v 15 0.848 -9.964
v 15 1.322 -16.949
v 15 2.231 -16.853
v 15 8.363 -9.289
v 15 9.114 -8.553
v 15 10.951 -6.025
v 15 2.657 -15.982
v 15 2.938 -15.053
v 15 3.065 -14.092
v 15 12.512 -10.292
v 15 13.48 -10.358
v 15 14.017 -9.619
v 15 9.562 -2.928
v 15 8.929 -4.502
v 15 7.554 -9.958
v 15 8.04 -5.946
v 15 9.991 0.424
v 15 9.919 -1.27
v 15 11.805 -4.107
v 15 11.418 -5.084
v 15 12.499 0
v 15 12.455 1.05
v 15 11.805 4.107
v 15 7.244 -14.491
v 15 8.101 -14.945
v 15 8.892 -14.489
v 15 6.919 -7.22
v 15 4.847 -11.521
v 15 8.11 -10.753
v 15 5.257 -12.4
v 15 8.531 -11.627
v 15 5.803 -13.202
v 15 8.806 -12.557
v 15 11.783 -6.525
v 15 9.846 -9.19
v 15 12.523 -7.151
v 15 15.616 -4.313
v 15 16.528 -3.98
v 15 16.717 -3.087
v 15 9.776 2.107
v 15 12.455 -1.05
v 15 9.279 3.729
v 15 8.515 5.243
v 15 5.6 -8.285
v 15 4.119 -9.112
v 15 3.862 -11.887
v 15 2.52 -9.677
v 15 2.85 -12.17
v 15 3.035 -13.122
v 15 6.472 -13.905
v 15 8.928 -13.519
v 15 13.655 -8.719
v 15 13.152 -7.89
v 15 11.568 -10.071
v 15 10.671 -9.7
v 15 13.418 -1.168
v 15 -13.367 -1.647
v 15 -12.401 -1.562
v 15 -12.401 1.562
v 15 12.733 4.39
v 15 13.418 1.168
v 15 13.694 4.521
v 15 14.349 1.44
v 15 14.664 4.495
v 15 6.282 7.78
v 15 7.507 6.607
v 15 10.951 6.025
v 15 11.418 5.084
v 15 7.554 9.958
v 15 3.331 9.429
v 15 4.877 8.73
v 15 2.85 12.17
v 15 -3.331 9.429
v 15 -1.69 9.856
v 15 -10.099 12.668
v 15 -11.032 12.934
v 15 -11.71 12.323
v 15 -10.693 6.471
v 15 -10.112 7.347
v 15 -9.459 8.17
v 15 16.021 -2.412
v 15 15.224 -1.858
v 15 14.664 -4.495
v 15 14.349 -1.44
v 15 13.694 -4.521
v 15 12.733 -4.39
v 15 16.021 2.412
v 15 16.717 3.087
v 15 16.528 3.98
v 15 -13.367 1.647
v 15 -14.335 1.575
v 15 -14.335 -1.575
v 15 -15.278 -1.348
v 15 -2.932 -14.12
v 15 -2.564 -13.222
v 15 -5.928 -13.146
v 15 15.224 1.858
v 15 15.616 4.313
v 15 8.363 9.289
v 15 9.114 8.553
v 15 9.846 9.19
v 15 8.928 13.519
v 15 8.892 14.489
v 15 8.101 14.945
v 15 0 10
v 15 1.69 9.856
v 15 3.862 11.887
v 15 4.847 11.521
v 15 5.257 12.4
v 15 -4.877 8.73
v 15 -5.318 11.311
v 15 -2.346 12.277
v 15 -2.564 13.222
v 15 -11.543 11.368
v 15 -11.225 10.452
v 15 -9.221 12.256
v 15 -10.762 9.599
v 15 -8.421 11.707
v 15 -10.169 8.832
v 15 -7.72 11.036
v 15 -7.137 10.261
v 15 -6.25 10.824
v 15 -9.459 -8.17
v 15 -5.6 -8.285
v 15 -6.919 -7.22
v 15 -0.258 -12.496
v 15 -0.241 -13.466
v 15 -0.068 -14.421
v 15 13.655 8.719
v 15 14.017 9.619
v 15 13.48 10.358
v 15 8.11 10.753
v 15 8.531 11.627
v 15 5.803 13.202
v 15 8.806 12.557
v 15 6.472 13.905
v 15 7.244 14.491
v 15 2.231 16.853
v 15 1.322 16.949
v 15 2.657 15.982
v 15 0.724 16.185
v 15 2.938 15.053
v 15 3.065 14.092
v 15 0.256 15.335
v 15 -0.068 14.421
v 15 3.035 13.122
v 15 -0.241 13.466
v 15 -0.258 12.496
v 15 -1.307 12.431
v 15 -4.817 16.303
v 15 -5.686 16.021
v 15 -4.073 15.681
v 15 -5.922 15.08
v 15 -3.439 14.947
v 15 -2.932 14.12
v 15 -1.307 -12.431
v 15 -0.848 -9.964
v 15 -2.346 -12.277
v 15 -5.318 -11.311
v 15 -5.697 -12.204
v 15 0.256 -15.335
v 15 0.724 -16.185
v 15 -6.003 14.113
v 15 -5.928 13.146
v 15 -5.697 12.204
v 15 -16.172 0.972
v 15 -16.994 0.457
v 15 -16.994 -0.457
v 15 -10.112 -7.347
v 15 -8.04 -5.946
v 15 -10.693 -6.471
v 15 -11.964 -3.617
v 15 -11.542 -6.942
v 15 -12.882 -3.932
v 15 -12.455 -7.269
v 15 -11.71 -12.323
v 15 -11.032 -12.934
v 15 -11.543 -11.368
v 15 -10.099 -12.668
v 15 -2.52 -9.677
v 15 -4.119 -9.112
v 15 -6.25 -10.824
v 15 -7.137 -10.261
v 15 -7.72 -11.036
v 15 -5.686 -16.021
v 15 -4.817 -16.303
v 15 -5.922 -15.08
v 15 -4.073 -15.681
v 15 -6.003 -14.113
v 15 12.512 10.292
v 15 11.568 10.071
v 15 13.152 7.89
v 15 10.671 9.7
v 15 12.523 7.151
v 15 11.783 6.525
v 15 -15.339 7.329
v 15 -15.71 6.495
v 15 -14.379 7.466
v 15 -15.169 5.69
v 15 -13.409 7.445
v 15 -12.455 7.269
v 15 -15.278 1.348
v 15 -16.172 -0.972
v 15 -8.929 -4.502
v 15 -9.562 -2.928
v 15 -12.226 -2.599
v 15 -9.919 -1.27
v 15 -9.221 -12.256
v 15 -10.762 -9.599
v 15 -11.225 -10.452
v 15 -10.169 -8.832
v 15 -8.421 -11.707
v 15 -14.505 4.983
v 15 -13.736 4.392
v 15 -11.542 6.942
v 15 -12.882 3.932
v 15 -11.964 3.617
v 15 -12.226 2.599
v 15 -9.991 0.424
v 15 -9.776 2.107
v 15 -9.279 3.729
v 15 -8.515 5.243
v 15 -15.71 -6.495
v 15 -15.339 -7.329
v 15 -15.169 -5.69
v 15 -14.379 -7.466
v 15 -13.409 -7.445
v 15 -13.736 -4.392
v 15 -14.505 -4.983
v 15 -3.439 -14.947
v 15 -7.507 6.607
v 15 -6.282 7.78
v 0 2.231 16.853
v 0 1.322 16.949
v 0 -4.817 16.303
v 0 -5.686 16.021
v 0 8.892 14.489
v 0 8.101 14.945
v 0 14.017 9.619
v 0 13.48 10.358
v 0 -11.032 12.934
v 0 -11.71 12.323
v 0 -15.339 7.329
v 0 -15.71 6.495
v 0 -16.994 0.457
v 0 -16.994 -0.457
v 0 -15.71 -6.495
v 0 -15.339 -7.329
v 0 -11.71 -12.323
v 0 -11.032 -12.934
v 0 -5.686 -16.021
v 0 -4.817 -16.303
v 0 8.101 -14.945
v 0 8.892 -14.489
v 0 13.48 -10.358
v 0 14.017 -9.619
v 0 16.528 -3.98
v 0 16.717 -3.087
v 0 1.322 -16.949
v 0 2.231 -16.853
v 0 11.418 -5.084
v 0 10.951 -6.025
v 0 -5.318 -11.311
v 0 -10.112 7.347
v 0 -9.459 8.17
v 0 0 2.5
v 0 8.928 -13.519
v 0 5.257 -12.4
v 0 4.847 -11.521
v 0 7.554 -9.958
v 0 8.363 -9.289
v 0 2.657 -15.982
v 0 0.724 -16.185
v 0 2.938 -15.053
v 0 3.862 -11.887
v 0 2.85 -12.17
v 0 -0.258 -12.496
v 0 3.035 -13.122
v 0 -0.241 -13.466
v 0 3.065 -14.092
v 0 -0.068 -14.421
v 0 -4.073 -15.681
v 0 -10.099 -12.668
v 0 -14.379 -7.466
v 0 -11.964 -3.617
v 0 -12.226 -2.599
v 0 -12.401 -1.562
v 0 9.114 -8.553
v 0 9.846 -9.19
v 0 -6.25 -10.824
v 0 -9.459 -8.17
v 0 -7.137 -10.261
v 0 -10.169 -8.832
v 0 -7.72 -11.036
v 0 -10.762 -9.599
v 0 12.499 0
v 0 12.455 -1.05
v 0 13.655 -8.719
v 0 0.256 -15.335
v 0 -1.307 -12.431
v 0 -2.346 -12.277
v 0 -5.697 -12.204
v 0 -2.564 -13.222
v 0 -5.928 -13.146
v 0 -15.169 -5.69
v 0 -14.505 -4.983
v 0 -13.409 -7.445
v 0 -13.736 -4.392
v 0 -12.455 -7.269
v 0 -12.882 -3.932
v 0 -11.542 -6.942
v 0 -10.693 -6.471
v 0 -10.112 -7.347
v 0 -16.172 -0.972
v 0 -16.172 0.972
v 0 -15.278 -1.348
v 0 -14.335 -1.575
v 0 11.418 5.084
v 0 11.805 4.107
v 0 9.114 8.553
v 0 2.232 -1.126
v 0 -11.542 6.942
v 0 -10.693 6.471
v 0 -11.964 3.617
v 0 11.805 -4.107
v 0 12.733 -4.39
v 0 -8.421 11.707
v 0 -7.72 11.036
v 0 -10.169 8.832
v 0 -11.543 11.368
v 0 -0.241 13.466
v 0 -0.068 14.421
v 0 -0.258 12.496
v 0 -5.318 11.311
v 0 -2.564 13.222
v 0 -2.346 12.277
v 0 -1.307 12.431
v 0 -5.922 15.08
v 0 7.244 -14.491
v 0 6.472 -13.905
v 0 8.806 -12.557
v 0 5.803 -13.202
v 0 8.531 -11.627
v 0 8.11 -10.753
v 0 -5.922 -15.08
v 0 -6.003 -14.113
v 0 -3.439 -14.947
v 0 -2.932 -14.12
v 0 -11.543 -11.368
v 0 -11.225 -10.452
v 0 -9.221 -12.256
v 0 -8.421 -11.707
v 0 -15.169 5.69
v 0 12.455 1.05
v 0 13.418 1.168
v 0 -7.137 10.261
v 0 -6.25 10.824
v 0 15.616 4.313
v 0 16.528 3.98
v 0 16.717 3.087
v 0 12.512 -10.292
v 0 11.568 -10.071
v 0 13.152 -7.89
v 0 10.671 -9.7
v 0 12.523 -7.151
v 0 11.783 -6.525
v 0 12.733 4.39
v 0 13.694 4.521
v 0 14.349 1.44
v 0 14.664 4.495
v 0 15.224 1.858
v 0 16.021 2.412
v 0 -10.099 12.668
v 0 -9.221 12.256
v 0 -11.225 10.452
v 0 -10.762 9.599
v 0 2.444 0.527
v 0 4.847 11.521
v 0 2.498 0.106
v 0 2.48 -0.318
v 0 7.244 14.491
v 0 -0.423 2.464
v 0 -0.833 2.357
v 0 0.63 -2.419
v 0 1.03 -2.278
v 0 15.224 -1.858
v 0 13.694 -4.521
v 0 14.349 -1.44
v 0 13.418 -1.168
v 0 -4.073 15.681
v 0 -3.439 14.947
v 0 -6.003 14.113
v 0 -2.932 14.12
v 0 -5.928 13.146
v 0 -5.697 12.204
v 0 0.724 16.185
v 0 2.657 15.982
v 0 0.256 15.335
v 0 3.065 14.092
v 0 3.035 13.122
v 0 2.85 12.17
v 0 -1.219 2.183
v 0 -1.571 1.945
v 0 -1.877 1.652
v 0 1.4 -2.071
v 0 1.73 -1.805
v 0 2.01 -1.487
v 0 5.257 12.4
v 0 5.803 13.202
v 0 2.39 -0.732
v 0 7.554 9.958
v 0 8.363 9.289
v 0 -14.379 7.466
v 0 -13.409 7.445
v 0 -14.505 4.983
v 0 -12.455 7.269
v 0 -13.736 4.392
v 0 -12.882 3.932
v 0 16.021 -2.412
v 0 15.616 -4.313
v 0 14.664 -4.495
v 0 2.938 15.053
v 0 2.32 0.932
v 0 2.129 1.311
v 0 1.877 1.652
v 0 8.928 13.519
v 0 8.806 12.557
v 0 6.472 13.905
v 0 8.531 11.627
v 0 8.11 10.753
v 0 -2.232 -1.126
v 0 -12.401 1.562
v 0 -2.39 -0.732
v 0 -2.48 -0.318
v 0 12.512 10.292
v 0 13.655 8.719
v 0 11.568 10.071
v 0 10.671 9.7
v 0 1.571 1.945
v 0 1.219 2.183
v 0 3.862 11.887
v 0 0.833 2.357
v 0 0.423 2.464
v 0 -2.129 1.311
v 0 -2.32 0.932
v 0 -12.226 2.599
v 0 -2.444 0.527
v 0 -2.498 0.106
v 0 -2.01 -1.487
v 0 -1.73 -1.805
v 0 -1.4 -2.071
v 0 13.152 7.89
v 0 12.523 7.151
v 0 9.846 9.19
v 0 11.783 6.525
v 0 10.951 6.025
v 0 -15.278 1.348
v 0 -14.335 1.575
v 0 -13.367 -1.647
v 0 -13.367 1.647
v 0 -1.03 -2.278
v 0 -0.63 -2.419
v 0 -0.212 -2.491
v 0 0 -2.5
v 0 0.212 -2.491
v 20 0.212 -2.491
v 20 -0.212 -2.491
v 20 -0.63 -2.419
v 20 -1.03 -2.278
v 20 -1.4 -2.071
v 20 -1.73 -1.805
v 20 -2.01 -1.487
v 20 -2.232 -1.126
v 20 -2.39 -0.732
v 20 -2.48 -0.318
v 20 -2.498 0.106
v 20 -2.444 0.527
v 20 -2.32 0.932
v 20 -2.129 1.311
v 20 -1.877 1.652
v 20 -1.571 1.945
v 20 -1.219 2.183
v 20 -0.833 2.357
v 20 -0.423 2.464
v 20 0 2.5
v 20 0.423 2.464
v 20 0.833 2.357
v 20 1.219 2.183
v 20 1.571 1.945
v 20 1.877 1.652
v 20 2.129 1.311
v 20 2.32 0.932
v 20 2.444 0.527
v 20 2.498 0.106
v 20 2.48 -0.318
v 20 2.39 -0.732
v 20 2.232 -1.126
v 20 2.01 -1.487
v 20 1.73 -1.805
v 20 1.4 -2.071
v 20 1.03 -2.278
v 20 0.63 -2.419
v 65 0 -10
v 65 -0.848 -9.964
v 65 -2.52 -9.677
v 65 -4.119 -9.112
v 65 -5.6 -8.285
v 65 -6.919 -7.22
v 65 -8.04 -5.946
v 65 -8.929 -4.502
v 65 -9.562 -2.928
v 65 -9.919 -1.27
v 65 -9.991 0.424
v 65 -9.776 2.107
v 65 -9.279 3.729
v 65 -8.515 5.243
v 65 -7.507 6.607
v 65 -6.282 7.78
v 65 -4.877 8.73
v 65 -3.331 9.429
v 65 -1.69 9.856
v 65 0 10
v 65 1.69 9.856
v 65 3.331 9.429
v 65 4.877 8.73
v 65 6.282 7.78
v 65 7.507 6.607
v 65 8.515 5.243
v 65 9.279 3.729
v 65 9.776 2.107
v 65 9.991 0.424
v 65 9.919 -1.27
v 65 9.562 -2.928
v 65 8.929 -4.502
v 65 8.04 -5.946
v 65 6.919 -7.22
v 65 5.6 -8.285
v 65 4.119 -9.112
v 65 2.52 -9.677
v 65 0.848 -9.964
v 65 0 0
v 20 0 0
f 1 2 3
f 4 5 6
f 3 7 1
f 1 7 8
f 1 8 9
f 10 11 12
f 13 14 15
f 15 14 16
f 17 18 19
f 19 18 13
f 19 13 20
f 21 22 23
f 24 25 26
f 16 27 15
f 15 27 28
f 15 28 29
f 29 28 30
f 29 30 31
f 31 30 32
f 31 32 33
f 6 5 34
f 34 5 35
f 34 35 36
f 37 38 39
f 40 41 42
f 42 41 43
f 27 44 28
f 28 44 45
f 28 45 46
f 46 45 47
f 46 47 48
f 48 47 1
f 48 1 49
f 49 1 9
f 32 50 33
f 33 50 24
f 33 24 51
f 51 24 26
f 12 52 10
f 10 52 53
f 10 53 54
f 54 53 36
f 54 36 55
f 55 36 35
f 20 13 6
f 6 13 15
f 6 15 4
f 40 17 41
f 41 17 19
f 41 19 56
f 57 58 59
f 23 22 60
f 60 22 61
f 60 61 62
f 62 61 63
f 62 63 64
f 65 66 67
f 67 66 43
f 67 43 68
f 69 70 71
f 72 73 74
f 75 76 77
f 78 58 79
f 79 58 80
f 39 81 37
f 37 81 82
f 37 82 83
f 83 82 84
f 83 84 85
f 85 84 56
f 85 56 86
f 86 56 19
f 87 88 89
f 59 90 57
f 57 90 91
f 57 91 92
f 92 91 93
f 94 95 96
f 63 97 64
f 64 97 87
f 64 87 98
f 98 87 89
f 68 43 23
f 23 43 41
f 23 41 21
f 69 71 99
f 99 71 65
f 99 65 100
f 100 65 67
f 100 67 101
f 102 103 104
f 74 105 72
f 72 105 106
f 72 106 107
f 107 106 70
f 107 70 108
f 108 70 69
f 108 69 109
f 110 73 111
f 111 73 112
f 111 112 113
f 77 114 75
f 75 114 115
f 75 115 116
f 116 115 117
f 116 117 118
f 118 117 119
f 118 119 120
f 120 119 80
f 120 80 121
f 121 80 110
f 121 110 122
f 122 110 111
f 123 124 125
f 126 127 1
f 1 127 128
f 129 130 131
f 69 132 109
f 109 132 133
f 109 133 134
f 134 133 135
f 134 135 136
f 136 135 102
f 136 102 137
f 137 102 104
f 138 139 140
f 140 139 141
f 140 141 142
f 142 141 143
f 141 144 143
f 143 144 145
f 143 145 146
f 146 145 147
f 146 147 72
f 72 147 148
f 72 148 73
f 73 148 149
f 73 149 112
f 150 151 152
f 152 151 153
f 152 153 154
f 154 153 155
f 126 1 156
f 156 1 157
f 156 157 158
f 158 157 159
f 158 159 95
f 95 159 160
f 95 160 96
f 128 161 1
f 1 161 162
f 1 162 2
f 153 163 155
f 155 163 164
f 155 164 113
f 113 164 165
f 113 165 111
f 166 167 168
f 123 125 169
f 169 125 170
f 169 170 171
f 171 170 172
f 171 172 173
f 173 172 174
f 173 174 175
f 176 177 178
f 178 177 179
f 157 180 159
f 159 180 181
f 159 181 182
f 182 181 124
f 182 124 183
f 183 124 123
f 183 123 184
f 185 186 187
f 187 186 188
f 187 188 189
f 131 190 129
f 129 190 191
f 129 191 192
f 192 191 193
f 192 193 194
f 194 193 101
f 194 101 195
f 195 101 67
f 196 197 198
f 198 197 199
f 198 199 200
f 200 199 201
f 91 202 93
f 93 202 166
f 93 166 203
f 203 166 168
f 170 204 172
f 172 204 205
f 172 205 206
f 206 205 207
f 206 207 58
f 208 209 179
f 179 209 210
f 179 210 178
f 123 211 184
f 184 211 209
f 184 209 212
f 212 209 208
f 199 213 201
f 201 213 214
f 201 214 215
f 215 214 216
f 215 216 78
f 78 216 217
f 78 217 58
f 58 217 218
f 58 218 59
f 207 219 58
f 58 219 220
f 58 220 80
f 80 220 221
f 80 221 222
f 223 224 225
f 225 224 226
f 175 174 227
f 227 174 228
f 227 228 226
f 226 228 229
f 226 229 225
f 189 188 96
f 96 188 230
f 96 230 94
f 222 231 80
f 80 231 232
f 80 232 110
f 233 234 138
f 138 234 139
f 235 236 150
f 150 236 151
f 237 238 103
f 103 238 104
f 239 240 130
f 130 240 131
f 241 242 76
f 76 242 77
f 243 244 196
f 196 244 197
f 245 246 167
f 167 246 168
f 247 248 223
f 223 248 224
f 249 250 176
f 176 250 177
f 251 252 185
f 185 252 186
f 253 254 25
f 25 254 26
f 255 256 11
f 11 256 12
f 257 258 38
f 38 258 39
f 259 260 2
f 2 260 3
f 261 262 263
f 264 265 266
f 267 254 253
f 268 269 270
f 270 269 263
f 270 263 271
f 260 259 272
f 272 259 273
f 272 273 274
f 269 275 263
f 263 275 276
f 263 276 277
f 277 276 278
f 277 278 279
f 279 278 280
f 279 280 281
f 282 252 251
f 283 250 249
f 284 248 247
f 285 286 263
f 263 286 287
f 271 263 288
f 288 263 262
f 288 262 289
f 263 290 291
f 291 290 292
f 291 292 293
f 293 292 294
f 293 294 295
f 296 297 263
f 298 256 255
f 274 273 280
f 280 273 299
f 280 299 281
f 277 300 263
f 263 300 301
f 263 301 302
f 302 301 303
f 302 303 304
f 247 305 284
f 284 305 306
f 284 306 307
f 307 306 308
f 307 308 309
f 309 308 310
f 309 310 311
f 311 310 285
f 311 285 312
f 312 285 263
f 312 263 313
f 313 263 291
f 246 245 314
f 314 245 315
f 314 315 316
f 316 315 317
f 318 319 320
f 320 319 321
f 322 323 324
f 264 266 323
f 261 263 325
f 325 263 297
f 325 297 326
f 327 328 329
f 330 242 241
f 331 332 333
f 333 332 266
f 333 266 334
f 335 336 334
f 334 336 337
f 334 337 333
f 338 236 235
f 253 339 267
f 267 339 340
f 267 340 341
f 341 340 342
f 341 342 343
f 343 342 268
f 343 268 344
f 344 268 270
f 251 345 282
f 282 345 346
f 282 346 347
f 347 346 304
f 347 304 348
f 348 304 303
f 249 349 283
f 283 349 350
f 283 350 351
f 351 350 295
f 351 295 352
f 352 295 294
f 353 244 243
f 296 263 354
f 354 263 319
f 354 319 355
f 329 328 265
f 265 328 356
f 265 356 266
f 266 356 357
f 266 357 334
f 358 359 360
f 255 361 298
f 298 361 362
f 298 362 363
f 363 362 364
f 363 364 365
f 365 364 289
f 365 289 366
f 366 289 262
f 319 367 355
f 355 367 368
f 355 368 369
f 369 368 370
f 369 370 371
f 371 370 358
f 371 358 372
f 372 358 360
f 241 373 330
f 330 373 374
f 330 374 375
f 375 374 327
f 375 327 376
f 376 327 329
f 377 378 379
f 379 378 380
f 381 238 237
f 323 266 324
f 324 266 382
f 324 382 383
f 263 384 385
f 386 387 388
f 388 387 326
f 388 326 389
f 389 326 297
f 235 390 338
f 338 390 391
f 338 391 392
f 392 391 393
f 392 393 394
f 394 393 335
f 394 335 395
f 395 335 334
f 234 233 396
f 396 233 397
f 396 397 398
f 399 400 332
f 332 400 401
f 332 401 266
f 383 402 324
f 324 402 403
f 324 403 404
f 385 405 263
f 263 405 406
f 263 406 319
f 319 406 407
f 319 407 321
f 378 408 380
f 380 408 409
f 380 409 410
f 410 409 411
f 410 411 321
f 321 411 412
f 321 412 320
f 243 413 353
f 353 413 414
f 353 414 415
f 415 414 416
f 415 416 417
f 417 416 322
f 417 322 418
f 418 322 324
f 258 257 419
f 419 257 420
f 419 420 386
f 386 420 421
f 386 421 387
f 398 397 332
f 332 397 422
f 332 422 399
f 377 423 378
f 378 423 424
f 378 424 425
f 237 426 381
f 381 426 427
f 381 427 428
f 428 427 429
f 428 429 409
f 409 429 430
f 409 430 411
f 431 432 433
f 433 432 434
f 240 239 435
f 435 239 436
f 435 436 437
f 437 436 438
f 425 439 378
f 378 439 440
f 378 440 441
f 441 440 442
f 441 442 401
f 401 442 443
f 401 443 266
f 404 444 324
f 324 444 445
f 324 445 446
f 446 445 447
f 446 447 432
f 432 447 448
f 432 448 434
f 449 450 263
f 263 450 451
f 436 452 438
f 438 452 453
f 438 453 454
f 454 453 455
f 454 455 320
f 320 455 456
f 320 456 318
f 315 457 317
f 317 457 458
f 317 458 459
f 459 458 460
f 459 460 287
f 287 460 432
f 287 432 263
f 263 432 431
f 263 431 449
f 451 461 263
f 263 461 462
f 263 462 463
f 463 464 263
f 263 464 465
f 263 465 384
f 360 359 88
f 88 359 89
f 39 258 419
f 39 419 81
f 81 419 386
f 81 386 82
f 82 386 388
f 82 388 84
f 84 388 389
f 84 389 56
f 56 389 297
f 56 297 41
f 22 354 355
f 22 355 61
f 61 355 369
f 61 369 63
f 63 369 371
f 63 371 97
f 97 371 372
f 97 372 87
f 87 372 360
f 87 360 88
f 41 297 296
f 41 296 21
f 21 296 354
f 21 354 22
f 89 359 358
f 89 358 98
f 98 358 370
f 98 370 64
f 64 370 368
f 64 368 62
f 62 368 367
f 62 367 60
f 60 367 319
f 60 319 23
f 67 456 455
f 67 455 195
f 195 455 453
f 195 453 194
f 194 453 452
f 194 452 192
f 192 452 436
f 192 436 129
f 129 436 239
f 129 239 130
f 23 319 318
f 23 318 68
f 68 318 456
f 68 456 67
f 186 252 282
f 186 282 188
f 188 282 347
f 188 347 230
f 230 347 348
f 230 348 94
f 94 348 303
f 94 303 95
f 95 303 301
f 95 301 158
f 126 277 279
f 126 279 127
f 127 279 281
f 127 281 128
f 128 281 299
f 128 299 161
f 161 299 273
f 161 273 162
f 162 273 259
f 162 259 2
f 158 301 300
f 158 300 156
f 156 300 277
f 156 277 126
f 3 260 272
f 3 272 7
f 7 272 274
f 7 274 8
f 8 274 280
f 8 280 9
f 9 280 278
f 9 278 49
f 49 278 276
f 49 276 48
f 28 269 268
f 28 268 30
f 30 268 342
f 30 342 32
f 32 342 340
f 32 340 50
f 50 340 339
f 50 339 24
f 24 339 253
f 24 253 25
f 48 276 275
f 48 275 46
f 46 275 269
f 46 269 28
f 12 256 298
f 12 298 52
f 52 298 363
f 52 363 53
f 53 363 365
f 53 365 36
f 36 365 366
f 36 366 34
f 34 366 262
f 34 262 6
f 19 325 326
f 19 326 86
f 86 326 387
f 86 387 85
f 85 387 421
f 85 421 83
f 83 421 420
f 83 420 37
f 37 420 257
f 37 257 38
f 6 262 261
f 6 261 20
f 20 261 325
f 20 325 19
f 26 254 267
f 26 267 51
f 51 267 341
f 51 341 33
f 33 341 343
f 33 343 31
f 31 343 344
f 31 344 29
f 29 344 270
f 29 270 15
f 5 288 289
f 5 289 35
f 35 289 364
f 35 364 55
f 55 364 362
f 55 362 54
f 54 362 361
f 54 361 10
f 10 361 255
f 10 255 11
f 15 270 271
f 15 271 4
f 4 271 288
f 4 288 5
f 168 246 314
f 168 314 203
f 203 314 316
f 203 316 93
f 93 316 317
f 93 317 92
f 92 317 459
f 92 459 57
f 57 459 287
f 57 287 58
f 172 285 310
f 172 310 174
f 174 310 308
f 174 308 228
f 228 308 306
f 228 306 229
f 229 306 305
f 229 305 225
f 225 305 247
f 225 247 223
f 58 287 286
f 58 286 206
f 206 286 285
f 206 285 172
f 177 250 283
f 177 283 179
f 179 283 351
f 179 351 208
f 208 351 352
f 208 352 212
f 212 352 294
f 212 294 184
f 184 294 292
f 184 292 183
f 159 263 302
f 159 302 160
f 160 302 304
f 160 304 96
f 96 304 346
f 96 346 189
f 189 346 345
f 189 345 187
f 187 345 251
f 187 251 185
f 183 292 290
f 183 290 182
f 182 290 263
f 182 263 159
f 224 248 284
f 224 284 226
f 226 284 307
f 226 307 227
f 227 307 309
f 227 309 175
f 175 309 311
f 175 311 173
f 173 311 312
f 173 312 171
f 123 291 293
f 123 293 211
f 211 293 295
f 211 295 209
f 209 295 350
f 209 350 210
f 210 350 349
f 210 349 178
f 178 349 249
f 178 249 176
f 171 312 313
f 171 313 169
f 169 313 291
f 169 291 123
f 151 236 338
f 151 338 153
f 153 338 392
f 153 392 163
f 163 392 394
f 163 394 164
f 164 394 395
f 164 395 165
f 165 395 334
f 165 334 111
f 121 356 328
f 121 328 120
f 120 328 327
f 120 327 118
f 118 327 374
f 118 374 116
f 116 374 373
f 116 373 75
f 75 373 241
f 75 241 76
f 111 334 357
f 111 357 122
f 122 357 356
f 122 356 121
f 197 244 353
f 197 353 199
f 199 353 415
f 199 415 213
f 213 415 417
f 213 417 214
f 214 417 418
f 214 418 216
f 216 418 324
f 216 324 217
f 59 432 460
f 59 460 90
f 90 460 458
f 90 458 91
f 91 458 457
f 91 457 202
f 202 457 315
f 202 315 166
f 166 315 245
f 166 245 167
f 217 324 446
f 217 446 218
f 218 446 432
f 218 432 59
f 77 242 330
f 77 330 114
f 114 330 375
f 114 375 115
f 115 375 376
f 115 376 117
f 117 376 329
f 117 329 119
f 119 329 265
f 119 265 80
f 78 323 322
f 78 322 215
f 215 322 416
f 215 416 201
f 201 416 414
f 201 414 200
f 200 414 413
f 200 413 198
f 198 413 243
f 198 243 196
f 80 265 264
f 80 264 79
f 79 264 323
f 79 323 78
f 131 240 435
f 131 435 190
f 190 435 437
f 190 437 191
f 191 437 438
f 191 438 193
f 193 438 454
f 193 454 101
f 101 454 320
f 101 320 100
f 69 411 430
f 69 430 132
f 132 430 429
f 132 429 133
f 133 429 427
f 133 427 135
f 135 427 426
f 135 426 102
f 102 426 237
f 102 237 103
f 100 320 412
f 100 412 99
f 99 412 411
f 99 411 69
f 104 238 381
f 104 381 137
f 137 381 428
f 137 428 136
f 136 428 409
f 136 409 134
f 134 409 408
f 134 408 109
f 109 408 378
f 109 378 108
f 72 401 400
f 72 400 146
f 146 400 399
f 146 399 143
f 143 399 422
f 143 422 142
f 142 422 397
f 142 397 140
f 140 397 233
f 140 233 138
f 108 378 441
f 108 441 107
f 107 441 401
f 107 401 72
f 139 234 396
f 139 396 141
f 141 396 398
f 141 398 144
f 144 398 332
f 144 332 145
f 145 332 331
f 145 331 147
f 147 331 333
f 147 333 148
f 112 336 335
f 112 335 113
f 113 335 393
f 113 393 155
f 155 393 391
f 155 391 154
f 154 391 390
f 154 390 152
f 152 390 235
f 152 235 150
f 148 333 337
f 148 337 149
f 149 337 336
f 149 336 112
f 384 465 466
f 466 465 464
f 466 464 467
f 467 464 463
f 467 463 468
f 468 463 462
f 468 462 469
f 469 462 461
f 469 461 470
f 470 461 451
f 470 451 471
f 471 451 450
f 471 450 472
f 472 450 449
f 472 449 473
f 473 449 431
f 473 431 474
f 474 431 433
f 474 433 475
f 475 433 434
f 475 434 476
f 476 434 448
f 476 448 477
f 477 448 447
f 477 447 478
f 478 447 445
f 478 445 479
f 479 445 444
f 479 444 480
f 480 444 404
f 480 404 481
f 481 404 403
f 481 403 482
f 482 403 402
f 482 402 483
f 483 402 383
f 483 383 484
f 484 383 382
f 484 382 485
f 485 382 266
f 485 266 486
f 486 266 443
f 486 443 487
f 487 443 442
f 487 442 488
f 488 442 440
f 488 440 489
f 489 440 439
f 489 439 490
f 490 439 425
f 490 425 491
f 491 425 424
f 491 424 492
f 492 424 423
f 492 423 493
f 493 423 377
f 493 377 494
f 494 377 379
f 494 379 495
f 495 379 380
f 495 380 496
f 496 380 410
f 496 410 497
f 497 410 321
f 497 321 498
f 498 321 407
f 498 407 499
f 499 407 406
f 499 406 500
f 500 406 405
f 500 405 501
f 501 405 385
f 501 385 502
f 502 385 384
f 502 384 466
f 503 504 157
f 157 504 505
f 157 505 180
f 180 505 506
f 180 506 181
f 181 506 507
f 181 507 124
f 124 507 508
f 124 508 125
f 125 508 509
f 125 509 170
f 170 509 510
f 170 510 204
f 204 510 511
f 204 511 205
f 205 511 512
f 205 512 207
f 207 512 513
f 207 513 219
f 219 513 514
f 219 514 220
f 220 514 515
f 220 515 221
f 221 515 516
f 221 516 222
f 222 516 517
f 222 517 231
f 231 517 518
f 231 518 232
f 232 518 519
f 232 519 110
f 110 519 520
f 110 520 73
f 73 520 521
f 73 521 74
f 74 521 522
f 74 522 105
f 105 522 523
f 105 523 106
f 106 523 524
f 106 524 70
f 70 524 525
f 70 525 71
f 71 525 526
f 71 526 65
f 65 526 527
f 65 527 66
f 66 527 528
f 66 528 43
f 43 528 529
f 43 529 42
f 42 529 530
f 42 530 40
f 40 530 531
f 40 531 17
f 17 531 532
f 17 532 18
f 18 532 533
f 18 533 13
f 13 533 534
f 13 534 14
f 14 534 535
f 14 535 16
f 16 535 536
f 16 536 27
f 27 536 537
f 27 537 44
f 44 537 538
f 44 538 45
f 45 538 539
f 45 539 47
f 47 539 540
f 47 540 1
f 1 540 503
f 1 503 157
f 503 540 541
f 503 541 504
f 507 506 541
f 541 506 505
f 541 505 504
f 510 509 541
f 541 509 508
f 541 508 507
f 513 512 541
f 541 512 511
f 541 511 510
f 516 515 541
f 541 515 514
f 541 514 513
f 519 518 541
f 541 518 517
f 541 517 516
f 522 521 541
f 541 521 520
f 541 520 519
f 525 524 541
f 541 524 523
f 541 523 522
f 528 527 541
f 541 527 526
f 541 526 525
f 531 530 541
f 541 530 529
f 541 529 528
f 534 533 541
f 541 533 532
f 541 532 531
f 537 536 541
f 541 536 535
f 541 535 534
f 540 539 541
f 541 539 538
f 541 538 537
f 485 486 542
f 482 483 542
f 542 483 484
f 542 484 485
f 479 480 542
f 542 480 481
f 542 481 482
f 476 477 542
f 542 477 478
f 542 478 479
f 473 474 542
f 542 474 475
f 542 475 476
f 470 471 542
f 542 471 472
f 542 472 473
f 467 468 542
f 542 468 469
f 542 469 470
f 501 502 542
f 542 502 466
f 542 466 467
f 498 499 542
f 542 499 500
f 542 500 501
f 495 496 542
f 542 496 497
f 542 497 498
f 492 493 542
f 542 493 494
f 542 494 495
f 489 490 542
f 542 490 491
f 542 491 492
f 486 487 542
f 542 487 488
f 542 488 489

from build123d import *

# Parameters (mm, degrees)
BASPROSKE_W         = 15
BASPROSKE_H         = 17
TOOTHCUT_DEPTH      = 29.337254631
TEETHCUTS_COUNT     = 15
TEETHCUTS_ANGLE     = 336
BORSKE_R            = 2.5
BORE_DEPTH          = 50.0000508
SKETCH1_R           = 10
BOSS_EXTRUDE1_DEPTH = 50
CUT_EXTRUDE3_START  = -20
SKETCH2_R           = 2.5
CUT_EXTRUDE3_DEPTH  = 20


with BuildPart() as part:
    # BasProSke → Base-Revolve (revolve)
    with BuildSketch(Plane(origin=(0, 0, 0), x_dir=(1, 0, 0), z_dir=(0, 1, 0)), mode=Mode.PRIVATE) as base_revolve_sk:
        with Locations((7.5, 8.5)):
            Rectangle(BASPROSKE_W, BASPROSKE_H)
    revolve(base_revolve_sk.sketch.rotate(Axis((-10, 0, 0), (1, 0, 0)), 180), axis=Axis((-10, 0, 0), (1, 0, 0)))

    # TooCutSke → ToothCut (cut, through all)
    with BuildSketch(Plane(origin=(0, 0, 0), x_dir=(0, 0, -1), z_dir=(1, 0, 0))):
        with BuildLine():
            ThreePointArc((1.050056448, 12.454813626), (0, 12.499), (-1.050056448, 12.454813626))
            ThreePointArc((-1.050056448, 12.454813626), (-1.638118106, 14.809604533), (-3.110934279, 16.73876737))
            ThreePointArc((-3.110934279, 16.73876737), (0, 17.0254), (3.110934279, 16.73876737))
            ThreePointArc((3.110934279, 16.73876737), (1.638118106, 14.809604533), (1.050056448, 12.454813626))
        make_face()
    toothcut = extrude(amount=TOOTHCUT_DEPTH, mode=Mode.SUBTRACT)

    # TeethCuts: ToothCut ×15 about axis
    teethcuts_axis = Axis((-10, 0, 0), (1, 0, 0))
    for i in range(1, TEETHCUTS_COUNT):
        add(toothcut.rotate(teethcuts_axis, i * TEETHCUTS_ANGLE / (TEETHCUTS_COUNT - 1)), mode=Mode.SUBTRACT)

    # BorSke → Bore (cut, symmetric)
    with BuildSketch(Plane(origin=(0, 0, 0), x_dir=(0, 0, -1), z_dir=(1, 0, 0))):
        with Locations(Location((0, 0, 0), (0, 0, 180))):
            Circle(BORSKE_R)
    extrude(amount=BORE_DEPTH, both=True, mode=Mode.SUBTRACT)

    # Sketch1 → Boss-Extrude1 (add)
    with BuildSketch(Plane(origin=(15, 0, 0), x_dir=(0, 0, -1), z_dir=(1, 0, 0))):
        with Locations(Location((0, 0, 0), (0, 0, 180))):
            Circle(SKETCH1_R)
    extrude(amount=BOSS_EXTRUDE1_DEPTH)

    # Sketch2 → Cut-Extrude3 (cut)
    with BuildSketch(Plane.ZY.offset(CUT_EXTRUDE3_START)):
        Circle(SKETCH2_R)
    extrude(amount=CUT_EXTRUDE3_DEPTH, mode=Mode.SUBTRACT)


solid = part.part
